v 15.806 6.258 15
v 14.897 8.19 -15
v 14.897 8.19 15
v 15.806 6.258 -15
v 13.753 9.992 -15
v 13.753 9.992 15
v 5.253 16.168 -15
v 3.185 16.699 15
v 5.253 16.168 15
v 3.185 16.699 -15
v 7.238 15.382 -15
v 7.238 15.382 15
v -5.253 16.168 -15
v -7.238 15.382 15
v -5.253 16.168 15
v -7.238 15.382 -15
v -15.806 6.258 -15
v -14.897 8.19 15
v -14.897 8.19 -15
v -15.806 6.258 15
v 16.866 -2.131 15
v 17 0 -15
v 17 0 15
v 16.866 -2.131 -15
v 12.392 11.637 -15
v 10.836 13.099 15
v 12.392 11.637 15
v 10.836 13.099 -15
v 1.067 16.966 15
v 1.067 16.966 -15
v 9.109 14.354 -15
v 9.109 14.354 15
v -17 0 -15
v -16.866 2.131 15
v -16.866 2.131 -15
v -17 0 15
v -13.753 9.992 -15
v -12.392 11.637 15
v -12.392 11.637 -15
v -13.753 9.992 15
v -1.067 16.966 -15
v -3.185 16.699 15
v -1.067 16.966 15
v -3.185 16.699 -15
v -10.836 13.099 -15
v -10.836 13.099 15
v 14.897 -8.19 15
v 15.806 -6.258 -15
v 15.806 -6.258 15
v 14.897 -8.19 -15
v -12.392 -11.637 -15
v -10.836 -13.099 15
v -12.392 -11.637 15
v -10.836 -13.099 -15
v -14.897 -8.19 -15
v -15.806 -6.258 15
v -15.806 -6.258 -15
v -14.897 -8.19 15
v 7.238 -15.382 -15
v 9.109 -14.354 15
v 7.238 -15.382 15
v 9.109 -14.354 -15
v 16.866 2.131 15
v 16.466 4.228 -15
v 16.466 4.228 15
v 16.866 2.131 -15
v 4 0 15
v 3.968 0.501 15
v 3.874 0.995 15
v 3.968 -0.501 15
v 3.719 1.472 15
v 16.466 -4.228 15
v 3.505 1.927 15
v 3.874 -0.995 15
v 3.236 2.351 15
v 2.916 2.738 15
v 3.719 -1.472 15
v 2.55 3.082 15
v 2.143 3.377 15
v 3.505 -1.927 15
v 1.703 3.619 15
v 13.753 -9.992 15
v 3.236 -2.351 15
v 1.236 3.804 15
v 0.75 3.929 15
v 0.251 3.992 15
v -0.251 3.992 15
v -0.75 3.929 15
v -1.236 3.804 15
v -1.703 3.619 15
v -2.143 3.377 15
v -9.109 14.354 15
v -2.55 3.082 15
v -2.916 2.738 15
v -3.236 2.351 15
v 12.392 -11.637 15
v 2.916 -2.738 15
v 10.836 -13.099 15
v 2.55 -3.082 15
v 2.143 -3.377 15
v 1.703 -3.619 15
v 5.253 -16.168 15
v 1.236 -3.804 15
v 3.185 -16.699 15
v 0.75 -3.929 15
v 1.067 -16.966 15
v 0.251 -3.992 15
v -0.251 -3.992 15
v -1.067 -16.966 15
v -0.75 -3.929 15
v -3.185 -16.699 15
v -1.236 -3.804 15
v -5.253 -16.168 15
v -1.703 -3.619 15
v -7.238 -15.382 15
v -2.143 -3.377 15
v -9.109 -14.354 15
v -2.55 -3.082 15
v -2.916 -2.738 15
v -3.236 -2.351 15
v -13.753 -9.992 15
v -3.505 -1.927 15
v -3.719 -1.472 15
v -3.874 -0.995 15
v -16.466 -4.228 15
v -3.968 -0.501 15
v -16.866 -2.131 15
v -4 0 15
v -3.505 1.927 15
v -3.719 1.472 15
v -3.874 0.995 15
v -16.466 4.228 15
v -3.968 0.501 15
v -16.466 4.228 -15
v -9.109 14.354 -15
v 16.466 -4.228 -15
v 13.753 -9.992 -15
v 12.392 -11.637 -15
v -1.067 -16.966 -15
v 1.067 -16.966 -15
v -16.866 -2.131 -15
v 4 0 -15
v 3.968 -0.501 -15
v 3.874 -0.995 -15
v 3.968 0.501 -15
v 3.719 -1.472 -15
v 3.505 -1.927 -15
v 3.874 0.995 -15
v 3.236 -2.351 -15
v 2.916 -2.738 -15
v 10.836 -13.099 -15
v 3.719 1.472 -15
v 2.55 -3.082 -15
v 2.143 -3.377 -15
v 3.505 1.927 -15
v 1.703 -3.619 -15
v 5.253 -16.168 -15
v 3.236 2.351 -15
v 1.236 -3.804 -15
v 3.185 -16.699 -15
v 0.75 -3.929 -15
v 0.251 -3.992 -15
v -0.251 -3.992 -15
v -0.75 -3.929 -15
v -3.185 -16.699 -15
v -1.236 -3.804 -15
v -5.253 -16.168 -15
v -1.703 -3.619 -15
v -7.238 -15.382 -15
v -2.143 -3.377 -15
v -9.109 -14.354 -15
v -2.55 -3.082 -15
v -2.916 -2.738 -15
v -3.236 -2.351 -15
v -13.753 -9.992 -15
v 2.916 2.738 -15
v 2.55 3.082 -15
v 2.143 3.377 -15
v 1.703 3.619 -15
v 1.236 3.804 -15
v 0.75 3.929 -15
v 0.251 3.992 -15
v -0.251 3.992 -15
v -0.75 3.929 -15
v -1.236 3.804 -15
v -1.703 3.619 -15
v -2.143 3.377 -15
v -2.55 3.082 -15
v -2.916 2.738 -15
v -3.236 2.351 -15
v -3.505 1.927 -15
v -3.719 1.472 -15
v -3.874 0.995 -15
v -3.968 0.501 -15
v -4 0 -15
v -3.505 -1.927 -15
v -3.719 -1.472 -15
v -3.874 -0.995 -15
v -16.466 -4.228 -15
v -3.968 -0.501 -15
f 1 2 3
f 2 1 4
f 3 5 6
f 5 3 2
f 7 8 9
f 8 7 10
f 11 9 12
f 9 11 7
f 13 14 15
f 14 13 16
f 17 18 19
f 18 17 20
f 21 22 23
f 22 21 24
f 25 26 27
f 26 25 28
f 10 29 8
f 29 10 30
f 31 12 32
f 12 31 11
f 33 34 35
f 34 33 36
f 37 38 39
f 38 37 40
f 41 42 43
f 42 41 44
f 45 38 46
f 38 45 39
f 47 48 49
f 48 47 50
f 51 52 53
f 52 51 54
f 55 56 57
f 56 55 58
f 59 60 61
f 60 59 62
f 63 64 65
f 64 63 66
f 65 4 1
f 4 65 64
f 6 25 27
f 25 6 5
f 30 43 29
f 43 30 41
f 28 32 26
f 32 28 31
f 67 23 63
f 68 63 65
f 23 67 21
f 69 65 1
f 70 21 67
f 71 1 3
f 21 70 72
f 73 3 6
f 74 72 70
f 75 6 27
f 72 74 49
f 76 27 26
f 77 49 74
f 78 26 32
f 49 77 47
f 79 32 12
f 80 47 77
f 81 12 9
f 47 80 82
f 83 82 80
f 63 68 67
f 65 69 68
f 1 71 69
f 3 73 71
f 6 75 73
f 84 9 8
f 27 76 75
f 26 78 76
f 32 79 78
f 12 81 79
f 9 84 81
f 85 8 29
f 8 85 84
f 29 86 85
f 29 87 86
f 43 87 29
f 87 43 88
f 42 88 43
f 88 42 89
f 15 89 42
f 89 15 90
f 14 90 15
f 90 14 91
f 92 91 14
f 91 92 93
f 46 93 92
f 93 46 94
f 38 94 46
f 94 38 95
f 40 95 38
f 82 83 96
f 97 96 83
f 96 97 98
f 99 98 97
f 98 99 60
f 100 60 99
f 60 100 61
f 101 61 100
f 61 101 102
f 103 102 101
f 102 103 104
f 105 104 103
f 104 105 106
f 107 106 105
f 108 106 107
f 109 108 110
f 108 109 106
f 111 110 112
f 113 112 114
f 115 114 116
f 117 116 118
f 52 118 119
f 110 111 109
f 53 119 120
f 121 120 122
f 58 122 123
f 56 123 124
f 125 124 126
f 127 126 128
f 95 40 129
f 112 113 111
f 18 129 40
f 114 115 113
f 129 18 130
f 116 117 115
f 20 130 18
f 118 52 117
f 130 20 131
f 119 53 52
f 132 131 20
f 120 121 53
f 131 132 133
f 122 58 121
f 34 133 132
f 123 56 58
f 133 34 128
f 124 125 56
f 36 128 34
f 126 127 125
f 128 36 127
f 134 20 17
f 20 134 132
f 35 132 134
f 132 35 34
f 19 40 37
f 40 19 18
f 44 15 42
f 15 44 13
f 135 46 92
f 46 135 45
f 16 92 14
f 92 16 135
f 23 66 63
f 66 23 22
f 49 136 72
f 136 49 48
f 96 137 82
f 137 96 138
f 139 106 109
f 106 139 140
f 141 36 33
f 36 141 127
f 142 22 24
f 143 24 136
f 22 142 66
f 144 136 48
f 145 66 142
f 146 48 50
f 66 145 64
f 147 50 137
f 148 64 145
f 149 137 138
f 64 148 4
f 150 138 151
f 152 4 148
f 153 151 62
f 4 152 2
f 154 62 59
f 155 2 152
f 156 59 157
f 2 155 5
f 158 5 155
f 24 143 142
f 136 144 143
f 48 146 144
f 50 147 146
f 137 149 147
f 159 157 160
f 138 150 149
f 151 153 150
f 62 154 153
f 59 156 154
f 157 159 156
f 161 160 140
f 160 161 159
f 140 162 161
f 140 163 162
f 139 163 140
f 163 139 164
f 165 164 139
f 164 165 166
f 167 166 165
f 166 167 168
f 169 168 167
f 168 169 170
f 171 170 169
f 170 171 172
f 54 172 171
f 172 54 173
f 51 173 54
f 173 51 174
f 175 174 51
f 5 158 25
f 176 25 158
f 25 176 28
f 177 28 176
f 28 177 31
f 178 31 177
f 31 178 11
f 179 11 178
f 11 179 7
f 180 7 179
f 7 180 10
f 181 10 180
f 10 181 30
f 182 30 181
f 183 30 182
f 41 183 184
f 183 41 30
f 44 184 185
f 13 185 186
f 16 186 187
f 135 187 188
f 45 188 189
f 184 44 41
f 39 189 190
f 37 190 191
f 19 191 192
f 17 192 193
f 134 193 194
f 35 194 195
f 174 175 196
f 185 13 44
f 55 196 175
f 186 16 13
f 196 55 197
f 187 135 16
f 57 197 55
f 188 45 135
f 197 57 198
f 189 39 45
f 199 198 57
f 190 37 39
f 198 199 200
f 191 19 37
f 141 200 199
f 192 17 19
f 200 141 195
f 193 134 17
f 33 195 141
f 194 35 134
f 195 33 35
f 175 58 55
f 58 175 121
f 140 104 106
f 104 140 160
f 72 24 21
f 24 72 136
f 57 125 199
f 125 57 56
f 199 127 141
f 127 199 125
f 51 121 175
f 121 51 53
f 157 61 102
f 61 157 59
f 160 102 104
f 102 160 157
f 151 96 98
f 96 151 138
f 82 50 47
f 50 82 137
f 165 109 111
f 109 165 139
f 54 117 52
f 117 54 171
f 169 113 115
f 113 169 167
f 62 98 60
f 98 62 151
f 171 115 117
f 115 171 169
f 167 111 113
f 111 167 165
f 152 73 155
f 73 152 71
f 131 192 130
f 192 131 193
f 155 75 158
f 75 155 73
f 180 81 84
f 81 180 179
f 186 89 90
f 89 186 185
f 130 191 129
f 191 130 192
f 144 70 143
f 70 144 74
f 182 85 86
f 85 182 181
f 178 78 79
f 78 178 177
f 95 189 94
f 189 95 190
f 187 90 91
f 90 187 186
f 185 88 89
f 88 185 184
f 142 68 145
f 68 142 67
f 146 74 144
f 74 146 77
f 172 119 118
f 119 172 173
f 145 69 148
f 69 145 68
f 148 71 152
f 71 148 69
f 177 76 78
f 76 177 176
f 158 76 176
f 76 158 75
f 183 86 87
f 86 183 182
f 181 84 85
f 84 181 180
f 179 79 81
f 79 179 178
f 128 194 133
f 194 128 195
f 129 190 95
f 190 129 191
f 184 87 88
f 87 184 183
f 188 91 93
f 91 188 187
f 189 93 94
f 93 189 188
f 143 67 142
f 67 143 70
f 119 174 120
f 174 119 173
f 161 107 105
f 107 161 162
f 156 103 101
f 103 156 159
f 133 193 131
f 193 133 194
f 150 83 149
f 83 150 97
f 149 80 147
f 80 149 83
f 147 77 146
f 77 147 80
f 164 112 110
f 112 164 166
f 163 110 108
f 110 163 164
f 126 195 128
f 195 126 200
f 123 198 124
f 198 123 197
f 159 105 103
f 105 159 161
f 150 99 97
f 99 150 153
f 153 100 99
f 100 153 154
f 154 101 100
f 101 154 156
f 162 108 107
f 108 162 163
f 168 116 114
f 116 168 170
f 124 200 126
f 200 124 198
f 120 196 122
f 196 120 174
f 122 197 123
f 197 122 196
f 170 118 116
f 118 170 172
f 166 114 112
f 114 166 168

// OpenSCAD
$fn = 50;


difference() {
	union() {
		translate(v = [0, 0, -15.0000000000]) {
			cylinder(h = 30, r = 17.0000000000);
		}
	}
	union() {
		translate(v = [0, 0, -100.0000000000]) {
			cylinder(h = 200, r = 4);
		}
	}
}
